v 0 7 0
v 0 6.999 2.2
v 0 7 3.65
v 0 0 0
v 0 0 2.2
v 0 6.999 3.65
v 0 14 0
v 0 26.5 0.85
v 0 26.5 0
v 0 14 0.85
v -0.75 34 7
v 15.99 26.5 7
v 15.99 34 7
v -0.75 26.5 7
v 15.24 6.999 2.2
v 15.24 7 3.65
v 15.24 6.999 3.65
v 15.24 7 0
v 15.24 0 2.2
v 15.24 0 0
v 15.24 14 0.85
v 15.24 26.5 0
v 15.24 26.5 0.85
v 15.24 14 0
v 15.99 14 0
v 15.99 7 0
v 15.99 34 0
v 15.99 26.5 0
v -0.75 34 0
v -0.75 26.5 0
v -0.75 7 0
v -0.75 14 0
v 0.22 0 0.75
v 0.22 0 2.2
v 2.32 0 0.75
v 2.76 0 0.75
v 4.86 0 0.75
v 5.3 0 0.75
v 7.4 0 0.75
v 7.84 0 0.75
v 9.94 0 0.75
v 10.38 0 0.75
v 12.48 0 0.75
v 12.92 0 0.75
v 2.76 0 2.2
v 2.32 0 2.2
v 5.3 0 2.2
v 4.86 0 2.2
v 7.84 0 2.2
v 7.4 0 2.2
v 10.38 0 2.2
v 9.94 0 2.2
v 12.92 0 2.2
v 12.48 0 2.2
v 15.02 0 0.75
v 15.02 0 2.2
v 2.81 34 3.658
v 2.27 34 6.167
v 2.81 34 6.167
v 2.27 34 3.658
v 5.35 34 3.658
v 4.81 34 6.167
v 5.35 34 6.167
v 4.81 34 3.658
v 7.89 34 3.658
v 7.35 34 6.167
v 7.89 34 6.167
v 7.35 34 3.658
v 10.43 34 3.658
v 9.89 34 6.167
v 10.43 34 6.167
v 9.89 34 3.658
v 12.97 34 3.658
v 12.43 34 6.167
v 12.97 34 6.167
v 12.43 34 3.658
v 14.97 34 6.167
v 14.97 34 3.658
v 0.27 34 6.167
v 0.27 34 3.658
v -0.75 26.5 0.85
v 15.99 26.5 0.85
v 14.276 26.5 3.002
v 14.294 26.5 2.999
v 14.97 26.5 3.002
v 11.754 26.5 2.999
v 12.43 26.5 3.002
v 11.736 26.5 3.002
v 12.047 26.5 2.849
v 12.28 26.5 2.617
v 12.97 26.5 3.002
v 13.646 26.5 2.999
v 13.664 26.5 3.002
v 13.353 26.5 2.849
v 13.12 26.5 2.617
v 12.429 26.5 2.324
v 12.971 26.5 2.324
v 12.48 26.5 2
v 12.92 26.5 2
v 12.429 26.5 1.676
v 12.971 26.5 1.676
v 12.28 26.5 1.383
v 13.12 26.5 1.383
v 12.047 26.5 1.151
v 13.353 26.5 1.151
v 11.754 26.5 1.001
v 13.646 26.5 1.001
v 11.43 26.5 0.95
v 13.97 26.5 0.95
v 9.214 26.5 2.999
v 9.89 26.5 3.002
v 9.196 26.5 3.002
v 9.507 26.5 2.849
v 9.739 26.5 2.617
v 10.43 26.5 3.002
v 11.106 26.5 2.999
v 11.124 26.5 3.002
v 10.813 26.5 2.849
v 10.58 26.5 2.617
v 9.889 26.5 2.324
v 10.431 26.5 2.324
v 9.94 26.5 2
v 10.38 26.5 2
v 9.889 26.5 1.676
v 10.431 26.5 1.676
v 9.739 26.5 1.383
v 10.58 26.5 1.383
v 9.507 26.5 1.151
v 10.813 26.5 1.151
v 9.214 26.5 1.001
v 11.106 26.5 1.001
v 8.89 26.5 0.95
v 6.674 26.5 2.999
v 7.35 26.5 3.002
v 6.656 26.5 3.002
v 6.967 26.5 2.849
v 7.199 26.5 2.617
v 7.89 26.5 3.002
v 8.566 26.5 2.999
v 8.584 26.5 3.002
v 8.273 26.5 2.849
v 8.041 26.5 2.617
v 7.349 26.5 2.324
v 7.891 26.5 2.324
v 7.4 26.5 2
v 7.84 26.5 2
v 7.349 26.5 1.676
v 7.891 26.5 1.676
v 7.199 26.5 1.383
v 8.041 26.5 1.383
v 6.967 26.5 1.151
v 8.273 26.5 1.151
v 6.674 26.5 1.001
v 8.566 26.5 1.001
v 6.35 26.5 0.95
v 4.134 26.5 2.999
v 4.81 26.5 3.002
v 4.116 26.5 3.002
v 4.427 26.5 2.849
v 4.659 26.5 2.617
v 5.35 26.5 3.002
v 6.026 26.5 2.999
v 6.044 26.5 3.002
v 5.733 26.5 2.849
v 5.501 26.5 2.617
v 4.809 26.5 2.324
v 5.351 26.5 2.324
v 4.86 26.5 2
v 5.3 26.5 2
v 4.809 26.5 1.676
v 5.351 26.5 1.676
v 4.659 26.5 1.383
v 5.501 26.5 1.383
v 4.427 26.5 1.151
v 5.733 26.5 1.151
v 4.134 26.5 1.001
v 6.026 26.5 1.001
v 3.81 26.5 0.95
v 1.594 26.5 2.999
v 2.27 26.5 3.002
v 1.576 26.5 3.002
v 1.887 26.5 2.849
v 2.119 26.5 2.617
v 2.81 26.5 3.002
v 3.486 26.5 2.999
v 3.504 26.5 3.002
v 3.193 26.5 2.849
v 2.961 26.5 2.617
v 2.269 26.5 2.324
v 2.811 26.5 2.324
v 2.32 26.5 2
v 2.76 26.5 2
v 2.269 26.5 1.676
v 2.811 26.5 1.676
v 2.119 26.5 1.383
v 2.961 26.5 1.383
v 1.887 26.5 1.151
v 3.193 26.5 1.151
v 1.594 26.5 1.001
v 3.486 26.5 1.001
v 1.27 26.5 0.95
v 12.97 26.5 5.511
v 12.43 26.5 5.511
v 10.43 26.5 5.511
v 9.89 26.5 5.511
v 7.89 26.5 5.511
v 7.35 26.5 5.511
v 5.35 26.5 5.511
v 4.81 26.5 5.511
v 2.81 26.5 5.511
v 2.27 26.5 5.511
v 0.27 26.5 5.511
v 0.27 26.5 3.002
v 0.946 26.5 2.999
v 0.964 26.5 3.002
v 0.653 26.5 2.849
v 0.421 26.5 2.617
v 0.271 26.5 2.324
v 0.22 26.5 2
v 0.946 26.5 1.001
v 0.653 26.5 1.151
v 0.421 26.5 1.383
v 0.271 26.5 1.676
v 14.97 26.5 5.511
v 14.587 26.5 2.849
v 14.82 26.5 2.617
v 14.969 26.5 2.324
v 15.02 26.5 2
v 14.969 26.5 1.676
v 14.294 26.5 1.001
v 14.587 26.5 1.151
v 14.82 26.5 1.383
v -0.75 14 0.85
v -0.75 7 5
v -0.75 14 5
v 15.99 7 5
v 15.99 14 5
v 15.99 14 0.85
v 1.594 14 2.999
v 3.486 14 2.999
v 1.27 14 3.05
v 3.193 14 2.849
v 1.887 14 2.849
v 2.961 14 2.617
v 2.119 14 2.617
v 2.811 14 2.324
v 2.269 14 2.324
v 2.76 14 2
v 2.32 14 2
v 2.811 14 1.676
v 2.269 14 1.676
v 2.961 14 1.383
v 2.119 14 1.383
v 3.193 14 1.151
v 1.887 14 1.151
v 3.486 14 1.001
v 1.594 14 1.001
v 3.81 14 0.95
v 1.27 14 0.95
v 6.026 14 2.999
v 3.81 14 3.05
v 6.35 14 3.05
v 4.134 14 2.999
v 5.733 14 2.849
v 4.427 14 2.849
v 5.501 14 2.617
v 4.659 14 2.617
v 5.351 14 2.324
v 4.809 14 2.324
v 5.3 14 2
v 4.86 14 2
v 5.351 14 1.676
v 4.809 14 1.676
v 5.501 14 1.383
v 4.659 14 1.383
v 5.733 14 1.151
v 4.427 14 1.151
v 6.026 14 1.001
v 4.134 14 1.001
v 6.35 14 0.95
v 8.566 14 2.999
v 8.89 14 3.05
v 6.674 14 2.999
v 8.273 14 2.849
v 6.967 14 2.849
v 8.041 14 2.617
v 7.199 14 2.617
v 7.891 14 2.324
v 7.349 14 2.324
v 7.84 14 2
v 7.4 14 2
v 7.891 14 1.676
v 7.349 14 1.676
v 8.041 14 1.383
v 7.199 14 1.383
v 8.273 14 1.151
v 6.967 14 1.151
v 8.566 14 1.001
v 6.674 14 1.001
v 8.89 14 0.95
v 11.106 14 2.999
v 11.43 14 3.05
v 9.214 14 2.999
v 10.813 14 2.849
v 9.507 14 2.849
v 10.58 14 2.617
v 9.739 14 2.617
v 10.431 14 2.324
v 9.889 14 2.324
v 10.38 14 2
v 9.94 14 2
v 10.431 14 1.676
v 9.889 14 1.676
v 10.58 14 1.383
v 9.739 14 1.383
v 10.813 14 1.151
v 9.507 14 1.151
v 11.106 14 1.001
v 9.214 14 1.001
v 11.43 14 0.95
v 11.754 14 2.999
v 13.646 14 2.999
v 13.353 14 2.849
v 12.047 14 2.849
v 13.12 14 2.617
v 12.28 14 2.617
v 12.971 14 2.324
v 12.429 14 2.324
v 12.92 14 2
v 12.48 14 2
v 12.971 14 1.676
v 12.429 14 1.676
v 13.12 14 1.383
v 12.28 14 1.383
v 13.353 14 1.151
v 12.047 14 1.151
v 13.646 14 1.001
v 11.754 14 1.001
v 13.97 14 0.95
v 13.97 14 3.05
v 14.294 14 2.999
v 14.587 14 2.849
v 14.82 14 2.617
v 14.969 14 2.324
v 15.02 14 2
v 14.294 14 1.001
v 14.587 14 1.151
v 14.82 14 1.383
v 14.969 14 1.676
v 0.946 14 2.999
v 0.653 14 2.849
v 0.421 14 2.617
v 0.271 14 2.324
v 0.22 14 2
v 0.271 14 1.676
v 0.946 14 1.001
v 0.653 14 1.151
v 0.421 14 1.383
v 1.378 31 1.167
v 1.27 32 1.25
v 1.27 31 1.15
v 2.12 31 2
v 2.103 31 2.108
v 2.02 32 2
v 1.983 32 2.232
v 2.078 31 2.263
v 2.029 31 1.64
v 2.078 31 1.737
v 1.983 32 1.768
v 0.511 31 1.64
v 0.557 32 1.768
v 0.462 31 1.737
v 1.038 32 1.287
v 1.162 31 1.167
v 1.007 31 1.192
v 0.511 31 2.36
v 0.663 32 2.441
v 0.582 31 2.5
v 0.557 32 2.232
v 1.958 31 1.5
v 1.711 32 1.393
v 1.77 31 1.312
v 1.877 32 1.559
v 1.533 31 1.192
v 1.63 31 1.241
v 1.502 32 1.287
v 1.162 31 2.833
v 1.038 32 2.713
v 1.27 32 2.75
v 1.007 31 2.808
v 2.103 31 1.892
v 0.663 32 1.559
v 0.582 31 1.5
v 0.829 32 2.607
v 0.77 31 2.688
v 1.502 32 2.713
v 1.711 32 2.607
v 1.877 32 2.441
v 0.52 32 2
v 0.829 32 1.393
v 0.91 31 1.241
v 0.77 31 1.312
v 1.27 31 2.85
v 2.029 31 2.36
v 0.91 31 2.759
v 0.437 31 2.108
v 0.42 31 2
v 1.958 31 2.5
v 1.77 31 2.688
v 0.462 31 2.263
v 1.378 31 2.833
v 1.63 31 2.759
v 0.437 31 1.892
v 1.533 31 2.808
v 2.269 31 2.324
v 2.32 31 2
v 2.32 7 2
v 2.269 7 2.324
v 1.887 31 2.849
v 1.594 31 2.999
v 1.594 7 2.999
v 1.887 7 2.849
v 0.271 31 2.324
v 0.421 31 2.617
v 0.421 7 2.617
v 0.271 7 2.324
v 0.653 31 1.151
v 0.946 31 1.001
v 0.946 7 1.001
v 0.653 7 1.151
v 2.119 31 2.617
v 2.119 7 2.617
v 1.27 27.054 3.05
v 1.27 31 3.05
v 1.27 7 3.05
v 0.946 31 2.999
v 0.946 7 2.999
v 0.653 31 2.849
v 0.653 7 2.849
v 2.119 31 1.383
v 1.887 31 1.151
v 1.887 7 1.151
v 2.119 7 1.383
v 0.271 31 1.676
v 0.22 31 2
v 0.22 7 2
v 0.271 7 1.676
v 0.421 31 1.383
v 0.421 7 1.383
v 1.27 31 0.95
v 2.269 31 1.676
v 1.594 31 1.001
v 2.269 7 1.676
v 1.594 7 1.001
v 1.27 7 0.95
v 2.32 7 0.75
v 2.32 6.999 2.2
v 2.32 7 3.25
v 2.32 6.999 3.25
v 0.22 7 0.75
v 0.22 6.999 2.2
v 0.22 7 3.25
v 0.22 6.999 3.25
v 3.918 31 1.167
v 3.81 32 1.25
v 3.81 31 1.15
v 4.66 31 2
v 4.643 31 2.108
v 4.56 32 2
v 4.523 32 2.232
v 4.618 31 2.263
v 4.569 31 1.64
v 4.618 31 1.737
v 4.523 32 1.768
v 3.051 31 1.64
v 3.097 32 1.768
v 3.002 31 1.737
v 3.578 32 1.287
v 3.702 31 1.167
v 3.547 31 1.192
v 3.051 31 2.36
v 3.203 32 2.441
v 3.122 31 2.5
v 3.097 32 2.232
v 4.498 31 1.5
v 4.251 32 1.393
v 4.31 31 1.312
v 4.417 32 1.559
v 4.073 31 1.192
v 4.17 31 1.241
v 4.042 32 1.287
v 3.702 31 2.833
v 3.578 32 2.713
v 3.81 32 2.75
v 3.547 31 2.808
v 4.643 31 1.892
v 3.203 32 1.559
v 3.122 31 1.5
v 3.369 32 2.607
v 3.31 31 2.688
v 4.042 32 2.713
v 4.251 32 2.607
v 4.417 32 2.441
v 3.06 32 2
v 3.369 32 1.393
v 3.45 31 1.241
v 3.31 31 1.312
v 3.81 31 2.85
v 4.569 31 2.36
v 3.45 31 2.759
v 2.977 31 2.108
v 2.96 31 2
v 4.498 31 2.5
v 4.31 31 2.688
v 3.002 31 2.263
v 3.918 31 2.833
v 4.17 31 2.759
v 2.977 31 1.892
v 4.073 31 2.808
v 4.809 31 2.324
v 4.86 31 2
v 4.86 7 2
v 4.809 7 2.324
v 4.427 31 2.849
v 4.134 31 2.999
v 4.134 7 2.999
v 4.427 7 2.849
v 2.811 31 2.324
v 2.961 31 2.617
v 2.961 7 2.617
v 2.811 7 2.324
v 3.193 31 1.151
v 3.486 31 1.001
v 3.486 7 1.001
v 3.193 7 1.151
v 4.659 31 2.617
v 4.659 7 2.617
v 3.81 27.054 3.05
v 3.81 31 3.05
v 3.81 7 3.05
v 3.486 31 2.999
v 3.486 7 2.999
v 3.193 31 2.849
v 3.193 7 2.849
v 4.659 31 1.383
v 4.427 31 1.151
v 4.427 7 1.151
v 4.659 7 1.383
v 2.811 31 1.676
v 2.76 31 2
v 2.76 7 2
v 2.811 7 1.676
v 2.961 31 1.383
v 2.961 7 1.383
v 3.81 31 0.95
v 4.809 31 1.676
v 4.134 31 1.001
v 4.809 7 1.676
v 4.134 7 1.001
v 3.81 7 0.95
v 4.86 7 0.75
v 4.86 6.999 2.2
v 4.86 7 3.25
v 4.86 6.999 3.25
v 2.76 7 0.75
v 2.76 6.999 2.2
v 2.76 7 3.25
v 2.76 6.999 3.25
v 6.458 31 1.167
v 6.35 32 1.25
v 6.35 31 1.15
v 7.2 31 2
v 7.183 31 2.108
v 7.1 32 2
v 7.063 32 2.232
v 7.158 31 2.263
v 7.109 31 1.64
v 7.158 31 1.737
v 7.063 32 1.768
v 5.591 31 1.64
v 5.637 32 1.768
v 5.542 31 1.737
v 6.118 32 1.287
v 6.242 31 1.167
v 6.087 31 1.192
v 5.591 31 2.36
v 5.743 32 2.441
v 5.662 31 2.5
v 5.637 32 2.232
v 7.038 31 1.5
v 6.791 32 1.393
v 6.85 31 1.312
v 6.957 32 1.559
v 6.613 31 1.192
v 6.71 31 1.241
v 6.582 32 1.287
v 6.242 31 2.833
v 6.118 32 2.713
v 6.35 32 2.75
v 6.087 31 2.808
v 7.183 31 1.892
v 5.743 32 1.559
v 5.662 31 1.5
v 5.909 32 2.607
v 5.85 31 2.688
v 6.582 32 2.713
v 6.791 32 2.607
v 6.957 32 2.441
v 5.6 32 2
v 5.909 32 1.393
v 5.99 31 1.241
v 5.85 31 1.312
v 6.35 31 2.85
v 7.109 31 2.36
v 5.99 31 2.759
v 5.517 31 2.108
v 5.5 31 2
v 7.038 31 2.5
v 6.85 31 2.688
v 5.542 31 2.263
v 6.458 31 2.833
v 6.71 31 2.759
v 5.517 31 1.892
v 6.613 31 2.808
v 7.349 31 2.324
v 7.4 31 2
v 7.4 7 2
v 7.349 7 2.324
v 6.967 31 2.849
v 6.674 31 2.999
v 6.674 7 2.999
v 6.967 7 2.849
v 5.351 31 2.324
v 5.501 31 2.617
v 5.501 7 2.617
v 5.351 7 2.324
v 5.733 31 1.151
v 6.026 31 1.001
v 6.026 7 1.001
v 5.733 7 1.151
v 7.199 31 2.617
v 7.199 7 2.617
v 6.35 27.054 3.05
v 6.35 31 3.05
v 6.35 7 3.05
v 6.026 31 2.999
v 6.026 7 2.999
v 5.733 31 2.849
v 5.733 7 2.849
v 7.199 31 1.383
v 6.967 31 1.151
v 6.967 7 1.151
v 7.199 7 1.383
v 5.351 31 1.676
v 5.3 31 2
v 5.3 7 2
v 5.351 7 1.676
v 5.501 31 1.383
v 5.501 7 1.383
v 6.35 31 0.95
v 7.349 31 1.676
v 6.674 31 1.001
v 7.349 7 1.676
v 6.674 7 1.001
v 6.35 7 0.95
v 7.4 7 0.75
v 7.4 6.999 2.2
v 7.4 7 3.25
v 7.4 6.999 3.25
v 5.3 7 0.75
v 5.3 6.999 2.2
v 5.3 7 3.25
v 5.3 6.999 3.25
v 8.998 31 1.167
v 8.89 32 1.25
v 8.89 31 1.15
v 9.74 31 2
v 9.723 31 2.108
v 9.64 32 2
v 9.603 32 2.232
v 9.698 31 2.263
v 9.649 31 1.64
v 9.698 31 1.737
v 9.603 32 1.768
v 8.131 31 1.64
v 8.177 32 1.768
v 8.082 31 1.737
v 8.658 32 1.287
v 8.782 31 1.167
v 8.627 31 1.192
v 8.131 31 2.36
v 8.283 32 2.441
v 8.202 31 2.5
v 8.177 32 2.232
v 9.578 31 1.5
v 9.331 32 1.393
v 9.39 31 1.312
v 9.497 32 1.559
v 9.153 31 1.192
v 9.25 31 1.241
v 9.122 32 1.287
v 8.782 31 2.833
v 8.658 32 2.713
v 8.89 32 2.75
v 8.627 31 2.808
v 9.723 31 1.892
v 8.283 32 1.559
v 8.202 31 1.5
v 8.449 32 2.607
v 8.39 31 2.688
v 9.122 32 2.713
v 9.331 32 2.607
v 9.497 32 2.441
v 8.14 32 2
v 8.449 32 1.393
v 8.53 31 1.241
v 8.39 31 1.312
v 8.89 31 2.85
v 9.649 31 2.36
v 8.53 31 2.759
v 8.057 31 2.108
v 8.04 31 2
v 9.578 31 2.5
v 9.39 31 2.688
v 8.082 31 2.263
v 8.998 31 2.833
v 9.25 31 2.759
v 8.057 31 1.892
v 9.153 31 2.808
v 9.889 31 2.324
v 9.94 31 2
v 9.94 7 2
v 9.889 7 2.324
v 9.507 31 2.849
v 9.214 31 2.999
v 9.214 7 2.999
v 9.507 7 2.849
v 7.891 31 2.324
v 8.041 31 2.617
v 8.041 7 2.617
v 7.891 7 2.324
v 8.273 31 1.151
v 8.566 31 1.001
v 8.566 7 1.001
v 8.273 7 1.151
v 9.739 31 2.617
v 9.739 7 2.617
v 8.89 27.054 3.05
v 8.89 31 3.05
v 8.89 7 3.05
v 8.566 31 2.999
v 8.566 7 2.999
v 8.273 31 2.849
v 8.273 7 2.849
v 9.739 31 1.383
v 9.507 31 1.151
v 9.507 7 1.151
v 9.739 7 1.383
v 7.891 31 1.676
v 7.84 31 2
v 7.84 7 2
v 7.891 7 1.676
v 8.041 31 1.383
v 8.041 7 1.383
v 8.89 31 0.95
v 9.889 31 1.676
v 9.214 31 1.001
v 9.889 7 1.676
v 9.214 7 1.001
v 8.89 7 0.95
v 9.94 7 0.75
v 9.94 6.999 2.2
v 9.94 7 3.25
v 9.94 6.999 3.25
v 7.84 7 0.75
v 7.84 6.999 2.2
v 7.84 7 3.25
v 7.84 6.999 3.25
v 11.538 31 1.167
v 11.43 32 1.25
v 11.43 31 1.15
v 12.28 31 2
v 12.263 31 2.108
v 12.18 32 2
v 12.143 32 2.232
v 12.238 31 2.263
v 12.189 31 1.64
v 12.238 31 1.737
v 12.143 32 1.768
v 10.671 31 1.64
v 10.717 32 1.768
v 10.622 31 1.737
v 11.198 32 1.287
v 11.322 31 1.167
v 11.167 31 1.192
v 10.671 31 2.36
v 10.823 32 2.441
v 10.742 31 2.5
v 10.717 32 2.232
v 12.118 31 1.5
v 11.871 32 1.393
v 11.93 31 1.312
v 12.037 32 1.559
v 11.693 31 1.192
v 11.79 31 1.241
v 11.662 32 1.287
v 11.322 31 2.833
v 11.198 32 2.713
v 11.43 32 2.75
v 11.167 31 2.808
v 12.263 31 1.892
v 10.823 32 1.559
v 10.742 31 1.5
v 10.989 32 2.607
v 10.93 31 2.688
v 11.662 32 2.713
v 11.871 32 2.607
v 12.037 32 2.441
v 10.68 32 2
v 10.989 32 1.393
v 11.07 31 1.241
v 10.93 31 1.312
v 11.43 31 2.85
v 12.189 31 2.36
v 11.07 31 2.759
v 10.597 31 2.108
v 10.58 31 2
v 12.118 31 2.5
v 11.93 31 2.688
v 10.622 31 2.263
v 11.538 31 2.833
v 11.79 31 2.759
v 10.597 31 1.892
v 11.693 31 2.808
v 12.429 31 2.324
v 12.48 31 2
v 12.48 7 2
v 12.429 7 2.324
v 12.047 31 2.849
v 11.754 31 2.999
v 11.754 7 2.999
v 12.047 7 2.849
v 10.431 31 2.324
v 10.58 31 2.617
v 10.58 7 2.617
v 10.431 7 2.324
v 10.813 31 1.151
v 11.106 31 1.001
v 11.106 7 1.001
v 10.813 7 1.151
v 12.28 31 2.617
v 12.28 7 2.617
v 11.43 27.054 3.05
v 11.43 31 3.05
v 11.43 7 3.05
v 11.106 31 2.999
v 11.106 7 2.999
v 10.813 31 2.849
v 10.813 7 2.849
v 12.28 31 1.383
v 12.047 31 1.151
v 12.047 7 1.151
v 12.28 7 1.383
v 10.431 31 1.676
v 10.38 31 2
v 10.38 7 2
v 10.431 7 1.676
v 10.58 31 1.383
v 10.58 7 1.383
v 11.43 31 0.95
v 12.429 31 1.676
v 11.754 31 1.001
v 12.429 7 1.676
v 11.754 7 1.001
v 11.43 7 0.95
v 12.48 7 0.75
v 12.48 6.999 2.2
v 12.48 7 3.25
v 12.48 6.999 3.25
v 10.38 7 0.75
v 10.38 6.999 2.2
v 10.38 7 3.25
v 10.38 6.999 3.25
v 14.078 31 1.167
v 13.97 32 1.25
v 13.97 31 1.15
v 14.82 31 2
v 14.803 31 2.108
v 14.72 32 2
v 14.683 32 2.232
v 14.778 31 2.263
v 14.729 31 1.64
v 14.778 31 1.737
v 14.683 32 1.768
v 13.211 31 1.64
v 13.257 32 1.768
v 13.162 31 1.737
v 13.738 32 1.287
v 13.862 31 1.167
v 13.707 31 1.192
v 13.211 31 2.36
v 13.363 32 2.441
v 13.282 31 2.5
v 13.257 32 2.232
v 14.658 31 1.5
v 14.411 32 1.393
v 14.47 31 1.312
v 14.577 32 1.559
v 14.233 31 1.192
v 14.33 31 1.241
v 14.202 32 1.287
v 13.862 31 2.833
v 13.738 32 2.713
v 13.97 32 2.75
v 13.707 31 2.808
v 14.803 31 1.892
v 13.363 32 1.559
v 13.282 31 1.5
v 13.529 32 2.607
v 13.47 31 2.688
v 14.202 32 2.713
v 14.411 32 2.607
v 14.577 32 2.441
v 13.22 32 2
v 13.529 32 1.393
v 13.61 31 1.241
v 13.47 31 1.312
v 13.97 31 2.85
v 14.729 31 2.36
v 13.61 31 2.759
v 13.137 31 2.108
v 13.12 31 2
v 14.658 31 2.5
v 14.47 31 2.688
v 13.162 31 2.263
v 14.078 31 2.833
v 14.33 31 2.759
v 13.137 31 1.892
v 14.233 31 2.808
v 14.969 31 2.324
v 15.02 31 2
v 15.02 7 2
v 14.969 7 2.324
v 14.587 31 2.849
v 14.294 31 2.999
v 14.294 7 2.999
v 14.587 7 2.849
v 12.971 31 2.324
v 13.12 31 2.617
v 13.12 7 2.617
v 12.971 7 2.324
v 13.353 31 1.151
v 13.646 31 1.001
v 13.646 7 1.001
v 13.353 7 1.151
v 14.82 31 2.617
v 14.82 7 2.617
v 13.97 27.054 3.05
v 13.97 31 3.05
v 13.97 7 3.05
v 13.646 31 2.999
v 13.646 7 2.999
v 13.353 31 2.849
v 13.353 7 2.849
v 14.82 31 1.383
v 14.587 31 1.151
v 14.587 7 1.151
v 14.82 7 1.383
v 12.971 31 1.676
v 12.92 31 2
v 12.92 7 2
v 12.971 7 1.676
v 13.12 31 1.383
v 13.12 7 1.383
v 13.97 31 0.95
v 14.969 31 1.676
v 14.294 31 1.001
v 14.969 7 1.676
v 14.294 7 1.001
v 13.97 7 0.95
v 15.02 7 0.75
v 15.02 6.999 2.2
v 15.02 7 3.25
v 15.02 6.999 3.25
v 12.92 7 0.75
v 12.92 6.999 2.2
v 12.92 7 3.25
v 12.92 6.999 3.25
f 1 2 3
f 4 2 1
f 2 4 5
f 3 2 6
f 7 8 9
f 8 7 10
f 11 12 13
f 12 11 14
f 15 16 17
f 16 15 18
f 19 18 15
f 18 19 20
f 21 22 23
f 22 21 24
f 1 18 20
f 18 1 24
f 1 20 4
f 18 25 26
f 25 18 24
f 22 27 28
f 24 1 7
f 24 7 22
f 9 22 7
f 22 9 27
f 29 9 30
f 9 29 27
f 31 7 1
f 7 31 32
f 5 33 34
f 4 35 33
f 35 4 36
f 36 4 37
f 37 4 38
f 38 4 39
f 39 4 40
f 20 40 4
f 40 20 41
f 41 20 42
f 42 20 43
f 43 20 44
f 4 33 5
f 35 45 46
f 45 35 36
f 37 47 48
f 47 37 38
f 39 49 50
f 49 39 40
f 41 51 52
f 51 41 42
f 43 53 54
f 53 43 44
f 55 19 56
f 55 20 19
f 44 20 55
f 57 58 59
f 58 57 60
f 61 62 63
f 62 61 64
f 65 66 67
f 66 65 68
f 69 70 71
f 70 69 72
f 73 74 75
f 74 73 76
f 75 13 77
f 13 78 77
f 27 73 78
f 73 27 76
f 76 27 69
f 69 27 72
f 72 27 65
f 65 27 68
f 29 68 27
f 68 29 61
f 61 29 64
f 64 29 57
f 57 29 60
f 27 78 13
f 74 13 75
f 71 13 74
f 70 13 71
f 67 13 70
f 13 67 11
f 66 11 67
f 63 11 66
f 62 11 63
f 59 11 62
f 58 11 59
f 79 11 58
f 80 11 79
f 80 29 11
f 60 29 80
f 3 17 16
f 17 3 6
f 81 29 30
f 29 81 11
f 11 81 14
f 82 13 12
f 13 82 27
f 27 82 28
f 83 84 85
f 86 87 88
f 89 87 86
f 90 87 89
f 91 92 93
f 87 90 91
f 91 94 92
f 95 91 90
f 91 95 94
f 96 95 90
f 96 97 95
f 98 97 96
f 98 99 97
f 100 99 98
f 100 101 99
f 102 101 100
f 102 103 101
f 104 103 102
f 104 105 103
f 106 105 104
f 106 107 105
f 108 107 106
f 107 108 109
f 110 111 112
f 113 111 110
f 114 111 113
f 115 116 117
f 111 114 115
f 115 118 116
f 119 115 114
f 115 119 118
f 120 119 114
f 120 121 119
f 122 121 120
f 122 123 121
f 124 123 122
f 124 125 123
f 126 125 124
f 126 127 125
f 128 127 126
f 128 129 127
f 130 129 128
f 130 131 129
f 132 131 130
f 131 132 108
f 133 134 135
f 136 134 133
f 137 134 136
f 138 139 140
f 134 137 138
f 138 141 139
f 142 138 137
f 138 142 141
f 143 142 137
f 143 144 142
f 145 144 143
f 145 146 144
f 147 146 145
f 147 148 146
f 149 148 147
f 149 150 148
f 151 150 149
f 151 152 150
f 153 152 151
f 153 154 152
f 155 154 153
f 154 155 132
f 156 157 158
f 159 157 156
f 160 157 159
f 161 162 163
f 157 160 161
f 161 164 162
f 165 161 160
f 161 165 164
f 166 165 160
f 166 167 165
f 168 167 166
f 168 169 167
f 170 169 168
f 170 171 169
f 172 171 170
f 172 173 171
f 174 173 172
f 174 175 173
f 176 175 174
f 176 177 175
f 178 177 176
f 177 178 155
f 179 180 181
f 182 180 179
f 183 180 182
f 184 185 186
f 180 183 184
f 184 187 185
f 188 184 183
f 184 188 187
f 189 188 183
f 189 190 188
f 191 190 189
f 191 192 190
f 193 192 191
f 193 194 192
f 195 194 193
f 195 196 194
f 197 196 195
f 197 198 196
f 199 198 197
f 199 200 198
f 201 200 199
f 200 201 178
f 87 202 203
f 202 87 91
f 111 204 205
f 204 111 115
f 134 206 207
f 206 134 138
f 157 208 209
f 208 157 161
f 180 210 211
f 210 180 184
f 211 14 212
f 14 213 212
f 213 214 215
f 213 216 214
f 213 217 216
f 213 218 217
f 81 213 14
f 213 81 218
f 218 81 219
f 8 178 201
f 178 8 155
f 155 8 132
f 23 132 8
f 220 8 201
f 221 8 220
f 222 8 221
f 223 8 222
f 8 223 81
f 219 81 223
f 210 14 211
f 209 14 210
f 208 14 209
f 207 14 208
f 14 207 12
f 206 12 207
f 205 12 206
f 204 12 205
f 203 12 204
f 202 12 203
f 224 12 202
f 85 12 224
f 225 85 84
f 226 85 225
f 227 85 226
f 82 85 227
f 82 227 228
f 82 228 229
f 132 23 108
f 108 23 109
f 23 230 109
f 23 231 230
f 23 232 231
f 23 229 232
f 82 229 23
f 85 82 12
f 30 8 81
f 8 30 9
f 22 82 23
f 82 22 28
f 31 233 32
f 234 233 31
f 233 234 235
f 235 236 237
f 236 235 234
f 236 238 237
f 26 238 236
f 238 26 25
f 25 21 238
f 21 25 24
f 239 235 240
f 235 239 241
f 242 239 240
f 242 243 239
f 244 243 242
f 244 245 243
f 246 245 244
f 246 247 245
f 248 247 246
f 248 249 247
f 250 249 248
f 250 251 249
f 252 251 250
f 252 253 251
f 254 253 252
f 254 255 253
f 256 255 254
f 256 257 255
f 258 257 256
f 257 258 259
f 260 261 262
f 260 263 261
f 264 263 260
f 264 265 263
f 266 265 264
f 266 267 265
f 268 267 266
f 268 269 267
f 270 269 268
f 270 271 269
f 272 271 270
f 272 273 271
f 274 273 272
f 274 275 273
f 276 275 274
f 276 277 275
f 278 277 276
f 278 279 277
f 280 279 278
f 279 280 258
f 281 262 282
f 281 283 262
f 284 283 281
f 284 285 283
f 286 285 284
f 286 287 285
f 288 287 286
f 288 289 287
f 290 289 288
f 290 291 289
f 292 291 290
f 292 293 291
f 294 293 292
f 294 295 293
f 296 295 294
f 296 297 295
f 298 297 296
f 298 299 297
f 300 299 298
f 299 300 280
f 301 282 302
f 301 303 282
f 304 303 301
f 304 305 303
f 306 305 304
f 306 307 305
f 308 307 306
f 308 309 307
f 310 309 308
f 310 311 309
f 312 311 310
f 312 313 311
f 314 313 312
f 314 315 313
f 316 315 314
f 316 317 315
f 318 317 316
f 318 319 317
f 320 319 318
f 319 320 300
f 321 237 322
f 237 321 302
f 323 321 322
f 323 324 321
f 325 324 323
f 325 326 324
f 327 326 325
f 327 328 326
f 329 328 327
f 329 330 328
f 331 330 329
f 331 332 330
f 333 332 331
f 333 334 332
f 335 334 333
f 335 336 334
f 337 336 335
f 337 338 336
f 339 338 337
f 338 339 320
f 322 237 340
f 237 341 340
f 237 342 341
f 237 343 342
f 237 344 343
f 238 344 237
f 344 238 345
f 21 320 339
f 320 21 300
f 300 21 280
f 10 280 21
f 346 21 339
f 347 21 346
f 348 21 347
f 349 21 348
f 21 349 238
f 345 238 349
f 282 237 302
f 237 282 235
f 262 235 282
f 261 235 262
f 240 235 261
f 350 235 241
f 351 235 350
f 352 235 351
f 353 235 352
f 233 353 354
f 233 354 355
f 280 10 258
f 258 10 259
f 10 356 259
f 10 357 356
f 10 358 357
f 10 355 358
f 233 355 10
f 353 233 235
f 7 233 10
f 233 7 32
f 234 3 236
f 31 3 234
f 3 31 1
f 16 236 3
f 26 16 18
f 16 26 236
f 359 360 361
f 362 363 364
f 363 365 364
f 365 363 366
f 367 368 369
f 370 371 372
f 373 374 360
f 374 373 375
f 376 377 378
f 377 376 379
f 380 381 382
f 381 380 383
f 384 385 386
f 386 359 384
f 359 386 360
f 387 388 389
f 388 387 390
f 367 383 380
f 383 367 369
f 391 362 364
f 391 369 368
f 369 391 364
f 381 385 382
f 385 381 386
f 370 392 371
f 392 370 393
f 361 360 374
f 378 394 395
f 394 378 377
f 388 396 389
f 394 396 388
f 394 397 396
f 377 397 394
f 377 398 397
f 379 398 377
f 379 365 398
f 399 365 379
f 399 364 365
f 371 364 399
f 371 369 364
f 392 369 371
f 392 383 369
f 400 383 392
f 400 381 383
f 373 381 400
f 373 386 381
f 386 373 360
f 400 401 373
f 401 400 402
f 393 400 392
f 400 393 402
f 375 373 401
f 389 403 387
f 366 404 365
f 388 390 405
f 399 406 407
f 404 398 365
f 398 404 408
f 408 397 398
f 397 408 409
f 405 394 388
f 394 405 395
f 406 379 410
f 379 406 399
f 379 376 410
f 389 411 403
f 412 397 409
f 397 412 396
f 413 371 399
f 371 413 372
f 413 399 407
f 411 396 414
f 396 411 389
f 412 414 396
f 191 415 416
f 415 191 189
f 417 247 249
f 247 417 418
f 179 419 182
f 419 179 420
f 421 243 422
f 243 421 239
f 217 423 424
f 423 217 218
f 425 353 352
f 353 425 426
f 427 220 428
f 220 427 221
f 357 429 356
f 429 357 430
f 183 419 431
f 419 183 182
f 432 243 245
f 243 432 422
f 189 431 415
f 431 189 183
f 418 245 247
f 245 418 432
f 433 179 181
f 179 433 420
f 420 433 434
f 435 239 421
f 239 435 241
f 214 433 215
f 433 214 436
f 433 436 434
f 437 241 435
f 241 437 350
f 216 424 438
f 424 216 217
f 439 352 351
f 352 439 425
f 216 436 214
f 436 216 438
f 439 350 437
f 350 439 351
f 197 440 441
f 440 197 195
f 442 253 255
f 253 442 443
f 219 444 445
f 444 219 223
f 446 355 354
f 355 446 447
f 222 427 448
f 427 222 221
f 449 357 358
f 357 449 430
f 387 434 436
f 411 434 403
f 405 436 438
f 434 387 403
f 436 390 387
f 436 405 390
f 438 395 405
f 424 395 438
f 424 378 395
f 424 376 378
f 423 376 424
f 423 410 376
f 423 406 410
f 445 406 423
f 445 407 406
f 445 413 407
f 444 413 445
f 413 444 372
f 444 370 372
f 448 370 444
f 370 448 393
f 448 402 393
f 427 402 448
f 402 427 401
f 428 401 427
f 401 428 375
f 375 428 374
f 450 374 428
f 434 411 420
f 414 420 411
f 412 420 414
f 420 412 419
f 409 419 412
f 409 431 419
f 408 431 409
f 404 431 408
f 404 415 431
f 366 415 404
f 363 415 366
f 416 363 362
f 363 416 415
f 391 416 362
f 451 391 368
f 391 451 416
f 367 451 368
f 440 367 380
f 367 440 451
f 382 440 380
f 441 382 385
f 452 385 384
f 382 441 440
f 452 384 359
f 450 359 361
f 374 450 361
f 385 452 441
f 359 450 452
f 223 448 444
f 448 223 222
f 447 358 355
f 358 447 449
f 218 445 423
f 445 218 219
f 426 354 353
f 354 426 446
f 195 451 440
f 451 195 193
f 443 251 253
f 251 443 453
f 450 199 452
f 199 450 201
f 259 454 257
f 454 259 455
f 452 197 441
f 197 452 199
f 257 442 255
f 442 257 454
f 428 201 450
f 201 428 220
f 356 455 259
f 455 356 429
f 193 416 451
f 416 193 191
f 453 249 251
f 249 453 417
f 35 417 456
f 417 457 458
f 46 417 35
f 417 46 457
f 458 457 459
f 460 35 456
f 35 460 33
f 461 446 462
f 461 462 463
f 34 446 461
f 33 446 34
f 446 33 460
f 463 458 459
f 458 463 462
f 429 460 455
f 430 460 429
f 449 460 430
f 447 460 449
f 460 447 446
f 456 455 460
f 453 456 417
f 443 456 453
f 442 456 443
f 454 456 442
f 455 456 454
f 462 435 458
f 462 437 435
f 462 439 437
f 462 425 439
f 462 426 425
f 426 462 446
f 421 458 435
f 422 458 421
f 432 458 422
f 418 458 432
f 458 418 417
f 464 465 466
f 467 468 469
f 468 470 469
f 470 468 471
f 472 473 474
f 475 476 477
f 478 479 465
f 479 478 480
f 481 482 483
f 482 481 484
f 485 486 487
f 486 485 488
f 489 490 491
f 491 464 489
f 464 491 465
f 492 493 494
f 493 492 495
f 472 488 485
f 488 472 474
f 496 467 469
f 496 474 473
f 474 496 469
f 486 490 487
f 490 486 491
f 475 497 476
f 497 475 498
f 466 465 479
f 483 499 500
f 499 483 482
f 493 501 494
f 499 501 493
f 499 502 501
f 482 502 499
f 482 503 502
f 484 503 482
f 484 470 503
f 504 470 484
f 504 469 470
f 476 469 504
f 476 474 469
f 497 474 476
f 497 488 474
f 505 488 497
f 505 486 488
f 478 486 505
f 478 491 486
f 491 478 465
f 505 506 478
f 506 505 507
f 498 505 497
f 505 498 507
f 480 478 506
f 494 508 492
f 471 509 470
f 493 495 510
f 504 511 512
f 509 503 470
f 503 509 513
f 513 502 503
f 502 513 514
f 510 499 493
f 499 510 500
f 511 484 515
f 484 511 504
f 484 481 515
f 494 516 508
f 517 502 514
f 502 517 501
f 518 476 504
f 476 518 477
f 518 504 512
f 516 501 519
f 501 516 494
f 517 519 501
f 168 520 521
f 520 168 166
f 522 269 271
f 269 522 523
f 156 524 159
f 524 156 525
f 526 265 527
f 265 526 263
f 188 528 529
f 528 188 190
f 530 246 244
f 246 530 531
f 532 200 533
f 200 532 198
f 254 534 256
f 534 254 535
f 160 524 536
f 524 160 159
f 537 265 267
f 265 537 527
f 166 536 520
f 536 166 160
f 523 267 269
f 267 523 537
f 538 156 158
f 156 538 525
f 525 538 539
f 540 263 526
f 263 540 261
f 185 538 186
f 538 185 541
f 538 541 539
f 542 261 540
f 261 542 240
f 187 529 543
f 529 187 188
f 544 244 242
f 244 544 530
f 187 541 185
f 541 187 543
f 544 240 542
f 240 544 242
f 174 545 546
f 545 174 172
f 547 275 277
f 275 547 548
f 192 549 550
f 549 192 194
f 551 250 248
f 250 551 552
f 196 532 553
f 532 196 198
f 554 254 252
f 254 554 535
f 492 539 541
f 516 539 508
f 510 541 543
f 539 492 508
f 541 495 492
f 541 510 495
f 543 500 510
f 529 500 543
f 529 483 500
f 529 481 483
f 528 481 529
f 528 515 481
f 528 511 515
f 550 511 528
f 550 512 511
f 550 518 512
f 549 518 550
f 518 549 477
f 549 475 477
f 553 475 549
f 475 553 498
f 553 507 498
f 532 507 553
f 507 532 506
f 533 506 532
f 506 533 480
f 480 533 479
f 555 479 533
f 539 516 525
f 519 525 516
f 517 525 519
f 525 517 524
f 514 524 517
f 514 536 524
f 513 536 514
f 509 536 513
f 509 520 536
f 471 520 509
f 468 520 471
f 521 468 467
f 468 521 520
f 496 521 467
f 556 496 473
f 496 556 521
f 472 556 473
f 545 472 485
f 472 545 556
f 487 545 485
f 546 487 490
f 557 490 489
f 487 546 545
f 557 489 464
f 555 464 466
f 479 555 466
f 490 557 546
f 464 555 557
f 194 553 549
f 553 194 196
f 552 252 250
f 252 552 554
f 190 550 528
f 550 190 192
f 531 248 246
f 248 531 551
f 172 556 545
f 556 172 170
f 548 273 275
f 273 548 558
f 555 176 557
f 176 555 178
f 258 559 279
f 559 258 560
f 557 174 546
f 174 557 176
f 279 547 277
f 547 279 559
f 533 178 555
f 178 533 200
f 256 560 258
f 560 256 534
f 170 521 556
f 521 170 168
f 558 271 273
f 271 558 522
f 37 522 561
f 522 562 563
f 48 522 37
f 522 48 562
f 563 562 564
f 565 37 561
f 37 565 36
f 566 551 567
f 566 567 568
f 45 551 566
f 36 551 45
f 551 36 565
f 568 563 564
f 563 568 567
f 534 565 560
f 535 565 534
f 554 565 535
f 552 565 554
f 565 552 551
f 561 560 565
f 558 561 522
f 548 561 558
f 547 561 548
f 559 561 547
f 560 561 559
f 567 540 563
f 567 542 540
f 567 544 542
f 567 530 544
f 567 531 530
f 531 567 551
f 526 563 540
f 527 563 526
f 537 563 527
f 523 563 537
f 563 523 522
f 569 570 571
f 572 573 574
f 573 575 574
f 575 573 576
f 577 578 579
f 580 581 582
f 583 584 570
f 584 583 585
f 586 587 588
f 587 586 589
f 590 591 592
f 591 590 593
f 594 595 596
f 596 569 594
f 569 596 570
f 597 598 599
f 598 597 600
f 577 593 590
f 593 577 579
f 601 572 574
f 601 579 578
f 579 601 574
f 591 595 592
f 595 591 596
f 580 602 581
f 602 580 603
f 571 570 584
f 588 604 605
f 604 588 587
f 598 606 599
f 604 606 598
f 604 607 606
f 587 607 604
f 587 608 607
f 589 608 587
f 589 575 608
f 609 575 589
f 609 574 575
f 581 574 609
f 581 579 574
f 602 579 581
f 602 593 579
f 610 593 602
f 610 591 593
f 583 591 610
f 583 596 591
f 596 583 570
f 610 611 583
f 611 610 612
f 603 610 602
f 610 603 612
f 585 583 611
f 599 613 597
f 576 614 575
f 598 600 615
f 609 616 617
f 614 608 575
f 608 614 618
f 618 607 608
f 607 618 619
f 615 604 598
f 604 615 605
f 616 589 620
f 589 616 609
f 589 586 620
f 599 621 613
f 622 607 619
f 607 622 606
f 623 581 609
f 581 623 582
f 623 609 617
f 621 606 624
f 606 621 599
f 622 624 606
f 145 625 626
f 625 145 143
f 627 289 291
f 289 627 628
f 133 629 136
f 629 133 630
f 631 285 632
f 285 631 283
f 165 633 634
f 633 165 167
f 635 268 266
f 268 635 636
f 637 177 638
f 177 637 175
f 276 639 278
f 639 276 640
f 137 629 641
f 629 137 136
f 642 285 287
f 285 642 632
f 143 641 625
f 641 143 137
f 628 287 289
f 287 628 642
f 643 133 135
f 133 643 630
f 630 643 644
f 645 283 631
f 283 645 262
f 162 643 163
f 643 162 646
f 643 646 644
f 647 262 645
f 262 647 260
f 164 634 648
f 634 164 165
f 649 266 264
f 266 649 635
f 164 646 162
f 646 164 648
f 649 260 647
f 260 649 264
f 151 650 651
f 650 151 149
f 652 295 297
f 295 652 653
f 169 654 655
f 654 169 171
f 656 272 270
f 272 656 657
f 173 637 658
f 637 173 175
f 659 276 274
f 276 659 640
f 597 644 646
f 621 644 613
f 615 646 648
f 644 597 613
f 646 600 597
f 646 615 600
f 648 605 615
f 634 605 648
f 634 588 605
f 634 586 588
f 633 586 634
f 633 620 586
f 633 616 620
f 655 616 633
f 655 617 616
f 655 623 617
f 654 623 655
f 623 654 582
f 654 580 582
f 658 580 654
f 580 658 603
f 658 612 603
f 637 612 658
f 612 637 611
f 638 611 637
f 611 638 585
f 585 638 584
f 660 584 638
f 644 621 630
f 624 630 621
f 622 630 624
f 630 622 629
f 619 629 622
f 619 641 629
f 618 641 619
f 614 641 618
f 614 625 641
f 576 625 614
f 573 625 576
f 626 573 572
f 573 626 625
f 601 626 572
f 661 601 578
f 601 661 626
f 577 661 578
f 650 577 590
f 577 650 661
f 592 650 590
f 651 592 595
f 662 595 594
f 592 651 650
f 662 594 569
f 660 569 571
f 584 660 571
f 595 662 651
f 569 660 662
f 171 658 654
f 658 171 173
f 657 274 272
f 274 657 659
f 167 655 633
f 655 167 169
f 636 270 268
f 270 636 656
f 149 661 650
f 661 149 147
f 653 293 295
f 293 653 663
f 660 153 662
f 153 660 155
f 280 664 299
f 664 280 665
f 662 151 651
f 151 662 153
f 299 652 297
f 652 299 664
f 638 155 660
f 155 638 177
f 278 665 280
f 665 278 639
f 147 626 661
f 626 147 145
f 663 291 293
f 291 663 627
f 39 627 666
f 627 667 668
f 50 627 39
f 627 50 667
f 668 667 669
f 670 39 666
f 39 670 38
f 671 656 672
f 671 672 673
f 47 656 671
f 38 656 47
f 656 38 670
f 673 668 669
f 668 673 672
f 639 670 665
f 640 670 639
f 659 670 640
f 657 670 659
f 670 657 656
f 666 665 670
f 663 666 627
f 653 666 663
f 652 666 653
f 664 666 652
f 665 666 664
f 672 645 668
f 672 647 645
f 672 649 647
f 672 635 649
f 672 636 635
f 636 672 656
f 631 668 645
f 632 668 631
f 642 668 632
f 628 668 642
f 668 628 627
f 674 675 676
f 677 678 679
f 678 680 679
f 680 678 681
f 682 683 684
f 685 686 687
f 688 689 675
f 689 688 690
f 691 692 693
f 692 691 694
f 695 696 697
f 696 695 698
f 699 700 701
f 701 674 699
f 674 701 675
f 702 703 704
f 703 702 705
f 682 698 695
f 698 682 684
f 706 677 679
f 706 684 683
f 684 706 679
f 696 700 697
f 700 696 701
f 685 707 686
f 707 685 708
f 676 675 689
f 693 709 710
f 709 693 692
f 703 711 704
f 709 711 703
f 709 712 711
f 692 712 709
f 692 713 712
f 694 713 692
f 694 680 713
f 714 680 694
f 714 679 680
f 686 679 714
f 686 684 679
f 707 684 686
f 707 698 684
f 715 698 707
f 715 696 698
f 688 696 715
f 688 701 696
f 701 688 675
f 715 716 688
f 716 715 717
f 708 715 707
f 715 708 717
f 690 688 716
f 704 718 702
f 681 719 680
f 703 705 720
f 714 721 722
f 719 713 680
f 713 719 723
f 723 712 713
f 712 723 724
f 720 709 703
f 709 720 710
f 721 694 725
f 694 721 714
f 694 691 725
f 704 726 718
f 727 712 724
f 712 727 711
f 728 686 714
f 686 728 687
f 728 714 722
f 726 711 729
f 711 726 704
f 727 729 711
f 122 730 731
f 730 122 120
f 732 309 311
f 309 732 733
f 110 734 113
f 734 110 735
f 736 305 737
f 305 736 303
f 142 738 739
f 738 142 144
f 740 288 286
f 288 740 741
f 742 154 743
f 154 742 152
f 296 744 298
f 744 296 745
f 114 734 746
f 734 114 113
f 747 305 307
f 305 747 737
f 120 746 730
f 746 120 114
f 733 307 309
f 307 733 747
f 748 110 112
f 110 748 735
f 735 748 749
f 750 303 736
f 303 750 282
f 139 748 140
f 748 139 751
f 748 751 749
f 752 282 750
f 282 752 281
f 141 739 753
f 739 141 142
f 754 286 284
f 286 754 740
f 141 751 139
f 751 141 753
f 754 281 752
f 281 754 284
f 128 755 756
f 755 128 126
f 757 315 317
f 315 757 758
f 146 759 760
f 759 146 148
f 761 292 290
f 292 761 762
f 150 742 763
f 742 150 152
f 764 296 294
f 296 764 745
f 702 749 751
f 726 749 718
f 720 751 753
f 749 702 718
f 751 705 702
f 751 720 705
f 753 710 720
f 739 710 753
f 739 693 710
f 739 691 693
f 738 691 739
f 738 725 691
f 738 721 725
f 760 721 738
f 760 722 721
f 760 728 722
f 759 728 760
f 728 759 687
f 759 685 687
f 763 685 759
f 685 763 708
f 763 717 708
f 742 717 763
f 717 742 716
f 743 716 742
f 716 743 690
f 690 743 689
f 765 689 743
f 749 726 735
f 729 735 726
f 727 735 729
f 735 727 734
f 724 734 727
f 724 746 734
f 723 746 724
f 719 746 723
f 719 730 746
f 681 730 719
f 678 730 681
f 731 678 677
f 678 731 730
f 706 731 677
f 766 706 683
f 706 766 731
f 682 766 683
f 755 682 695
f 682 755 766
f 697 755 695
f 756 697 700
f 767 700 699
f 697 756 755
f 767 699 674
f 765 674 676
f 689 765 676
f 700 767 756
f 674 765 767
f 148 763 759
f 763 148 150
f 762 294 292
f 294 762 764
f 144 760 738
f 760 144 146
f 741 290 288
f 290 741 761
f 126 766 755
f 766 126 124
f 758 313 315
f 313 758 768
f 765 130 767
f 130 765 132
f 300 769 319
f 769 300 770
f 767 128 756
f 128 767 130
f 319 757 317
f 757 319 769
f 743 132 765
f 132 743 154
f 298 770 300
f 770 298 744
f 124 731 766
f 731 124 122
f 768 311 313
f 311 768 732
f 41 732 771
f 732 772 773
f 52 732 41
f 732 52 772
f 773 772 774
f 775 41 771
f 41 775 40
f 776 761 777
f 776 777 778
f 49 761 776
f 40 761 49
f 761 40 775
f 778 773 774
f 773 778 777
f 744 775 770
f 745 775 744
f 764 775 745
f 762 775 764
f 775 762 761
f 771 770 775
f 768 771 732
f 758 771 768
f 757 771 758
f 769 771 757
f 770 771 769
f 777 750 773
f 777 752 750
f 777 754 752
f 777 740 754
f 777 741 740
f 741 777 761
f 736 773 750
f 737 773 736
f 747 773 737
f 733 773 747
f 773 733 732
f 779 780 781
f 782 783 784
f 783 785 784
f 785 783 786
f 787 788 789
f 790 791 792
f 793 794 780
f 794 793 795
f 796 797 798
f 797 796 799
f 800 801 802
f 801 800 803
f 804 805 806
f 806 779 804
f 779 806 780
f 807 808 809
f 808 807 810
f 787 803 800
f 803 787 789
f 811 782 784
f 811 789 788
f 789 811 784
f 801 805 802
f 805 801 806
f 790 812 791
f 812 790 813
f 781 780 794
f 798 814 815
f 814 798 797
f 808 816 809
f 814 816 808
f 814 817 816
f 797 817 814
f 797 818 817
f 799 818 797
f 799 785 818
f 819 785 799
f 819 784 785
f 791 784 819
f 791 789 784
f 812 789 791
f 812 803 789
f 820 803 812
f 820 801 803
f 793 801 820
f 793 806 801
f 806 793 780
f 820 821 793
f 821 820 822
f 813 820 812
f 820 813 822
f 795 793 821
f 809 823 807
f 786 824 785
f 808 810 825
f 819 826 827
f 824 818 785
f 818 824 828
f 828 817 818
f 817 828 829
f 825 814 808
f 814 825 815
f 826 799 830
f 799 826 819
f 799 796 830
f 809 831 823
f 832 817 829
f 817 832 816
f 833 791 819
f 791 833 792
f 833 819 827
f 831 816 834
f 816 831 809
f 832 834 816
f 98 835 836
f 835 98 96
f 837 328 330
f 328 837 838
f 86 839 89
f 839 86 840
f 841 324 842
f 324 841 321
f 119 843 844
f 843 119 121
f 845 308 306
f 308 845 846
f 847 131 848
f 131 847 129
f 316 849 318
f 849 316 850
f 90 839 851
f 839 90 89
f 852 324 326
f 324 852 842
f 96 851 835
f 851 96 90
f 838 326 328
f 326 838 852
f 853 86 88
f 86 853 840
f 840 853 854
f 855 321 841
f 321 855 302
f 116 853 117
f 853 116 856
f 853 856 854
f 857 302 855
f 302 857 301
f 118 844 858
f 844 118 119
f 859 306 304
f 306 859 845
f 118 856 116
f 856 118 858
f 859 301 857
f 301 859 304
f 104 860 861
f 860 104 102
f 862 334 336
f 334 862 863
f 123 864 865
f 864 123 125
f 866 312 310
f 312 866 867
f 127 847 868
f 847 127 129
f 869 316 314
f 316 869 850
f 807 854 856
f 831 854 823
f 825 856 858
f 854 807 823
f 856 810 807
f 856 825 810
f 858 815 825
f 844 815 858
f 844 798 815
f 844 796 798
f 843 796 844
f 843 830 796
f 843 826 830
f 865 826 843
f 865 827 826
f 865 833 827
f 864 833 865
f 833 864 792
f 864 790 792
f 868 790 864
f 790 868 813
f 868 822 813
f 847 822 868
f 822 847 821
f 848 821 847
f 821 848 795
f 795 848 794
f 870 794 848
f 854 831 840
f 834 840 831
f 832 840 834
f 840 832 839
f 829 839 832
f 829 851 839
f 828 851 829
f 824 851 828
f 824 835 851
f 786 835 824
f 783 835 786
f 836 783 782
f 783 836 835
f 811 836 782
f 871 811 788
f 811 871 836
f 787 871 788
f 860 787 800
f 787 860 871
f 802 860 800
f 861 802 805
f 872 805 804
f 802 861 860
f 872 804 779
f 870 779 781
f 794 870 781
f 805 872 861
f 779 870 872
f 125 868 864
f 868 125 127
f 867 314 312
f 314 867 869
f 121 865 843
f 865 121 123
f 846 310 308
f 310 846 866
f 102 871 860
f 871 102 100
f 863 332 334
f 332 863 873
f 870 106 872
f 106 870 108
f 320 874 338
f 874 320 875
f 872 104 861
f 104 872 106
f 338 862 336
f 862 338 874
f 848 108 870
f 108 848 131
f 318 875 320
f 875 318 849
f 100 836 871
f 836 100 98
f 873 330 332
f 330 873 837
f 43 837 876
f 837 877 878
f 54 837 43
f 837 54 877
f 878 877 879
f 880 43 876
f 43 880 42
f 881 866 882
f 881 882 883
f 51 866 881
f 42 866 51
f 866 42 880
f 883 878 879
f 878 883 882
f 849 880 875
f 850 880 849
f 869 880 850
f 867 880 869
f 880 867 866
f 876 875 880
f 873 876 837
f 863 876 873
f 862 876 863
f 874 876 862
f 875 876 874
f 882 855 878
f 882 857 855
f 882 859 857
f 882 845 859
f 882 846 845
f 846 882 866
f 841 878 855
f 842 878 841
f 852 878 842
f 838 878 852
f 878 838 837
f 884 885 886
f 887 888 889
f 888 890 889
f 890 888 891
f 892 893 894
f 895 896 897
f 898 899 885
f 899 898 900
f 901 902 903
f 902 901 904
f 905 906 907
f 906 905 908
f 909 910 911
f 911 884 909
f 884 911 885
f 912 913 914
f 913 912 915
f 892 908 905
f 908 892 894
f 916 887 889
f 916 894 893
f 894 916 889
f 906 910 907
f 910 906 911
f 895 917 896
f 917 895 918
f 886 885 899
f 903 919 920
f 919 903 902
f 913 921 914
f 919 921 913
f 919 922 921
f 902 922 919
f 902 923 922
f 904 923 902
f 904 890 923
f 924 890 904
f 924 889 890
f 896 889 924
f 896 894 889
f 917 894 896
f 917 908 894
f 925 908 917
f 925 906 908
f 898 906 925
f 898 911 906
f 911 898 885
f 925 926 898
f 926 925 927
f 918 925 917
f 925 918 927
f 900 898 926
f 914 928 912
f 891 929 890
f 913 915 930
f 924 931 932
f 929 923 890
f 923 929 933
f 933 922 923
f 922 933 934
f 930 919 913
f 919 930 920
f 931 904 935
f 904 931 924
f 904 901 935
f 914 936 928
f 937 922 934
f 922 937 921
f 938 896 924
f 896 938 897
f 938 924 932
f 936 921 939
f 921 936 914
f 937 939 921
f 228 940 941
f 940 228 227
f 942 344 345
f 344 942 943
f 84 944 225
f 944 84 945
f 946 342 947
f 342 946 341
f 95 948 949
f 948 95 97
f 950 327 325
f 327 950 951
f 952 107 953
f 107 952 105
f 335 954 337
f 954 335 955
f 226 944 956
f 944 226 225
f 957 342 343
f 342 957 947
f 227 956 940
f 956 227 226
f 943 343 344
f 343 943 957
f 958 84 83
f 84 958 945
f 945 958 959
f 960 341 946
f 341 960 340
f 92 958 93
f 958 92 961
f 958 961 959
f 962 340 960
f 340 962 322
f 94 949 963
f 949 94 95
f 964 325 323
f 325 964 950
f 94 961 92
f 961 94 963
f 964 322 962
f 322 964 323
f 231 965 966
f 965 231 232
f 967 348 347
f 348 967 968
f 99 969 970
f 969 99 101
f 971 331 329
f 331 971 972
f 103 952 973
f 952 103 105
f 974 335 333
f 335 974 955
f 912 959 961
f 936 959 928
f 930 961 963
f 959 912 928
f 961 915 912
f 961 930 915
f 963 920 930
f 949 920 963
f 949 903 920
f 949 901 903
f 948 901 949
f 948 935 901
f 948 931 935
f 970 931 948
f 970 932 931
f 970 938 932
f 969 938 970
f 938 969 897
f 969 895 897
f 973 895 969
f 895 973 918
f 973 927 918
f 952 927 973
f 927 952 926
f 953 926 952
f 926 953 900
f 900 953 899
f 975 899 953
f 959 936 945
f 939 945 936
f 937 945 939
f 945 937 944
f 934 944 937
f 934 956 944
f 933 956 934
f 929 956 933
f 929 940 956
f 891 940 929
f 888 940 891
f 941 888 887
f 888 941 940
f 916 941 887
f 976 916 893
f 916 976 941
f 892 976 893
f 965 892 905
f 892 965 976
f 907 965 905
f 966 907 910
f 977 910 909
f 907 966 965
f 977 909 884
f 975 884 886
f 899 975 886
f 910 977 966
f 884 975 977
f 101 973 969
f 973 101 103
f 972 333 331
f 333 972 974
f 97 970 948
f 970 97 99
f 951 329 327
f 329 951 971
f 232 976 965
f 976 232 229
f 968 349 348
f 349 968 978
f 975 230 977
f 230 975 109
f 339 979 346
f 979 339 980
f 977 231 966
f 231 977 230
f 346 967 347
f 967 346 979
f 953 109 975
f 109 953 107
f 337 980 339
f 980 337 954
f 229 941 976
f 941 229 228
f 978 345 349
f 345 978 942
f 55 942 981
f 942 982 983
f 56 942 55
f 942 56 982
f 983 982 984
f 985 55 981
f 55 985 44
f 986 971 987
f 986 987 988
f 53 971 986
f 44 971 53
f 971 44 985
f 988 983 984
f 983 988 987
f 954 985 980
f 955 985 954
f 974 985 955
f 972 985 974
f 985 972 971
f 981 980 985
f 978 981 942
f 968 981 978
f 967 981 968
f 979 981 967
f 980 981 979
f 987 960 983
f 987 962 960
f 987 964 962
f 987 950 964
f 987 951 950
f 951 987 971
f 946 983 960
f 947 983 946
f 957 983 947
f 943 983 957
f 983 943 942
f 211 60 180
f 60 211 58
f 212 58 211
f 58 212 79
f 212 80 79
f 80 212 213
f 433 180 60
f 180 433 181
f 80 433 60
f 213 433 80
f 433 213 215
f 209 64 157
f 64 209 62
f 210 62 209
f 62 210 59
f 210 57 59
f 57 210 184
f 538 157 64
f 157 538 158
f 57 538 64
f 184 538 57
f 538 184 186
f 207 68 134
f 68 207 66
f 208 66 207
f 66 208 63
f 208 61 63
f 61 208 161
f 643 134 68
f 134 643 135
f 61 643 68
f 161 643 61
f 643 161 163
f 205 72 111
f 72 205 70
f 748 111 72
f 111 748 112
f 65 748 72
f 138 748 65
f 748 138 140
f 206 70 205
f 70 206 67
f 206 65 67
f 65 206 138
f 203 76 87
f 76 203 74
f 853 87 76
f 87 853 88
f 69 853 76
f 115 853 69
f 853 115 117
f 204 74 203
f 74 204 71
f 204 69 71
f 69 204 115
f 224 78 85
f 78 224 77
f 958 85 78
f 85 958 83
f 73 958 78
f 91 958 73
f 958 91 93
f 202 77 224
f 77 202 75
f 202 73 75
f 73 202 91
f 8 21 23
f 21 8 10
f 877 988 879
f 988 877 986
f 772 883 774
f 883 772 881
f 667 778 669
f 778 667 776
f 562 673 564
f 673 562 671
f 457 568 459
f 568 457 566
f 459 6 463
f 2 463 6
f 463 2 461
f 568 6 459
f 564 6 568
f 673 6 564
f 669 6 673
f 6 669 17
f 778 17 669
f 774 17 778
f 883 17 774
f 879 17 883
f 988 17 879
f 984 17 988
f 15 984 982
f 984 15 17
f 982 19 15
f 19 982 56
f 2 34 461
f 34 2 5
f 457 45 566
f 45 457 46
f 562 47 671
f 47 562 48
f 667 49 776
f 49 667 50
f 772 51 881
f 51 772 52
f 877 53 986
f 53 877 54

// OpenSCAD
$fn=20;
/*
  Pogo Pin Serial Adaptor
  Author: Brian Khuu 2019
  
  This is similar to https://hackaday.com/2017/08/04/pogo-pin-serial-adapter-thing/
  But is fully 3D printed without need for PCB. This may be useful for Arduino serial adaptors.
  
  I used P100-E2 probes for this
*/

// Designed For Printer Nozzle
printer_nozzle=0.4;

// Base Thickness
base_thickness = 0.1;

/* probe pin spec */
ppext = 8; // Probe extention length
ppbody = 25; // Body of the probe
ppdia = 1.5; // probe pin diameter

ppdiatol = 0.6; // tolerance for fitting
ppinset = 1;

ppdiaoutset = ppext-ppinset; // How far to space out to allow for side fits
echo(ppdiaoutset);

/* Castellated Module Pin Spacing and count */

// Pin Count
ppc = 6;

// Pin Spacing
pps = 2.54;

// PCB Thickness
pcb_thickness = 1.1; // 1mm Open Log Clone

// PCB Probe Offset
pcb_probe_offset = 1.3;

/* Clip */
clip_tab = 5; // Clip tab to more easily open the clip

/* pcb */
pcb_h = 2; // pcb thickness

/* calc */
boxx = ppc * pps;
boxy = 2 + ppbody + ppdiaoutset;
boxh = base_thickness+pcb_probe_offset+ppdiatol+5;

module probe_pin_req()
{
  inset=0;
  translate([0,0,-ppbody])
  union()
  {
    translate([0,0,0])
      cylinder(r1=(ppdia)/2,r2=(ppdia+ppdiatol)/2, h=3);
    translate([0,0,1])
      cylinder(r=(ppdia+ppdiatol)/2, h=ppbody+ppext+1);
    %color("gold") cylinder(r=ppdia/2, h=ppbody);
    %color("silver") translate([0,0,ppbody])
      cylinder(r=ppdia/2, r2=0, h=ppext);
  }
}

module openlog_clone_programmer_jig()
{
  difference()
  {  
    /* Bulk */
    union()
    {
      difference()
      {
        cube([boxx,boxy,boxh]);
        translate([-5, 0, base_thickness+pcb_probe_offset+ppdia*1.5]) 
          cube([ppc * pps+10,ppbody, 5]);
      }
      translate([-(ppdia)/2, ppdiaoutset+7+ppbody/2, 0]) 
        cube([boxx+(ppdia),boxy-(ppdiaoutset+7+ppbody/2), boxh]);
      translate([-(ppdia)/2, ppdiaoutset, 0]) 
        cube([boxx+(ppdia),7, 5]);
    }

    /* Probe Access Cutout */
    translate([-5, ppdiaoutset+7, base_thickness+ppdia/2]) 
      cube([ppc * pps+10,ppbody/2, 10]);
      
    /* Module Cutout */
    translate([0, -0.001, base_thickness+ppdia+ppdiatol]) 
      cube([boxx,ppdiaoutset, boxh]);
      
    /* Probe */
    for ( xi = [0 : 1 : ppc-1] )
    {
      translate([pps/2+pps*xi, 0, base_thickness])
      union()
      {
        translate([0, ppdiaoutset, pcb_probe_offset+ppdiatol])
          rotate([90,0,0])
          probe_pin_req();
        
        translate([0, ppdiaoutset, pcb_probe_offset+ppdiatol])
          rotate([180,0,0])
            translate([0, (ppdiaoutset)/2, 0])
              cube([ppdia+ppdiatol,(ppdiaoutset),ppdia+1], center=true);
      }
    }
    
    /* Wire Guide (To solder onto the probe) */
    for ( xii = [0 : 1 : ppc-1] )
    {
      translate([pps/2+pps*xii, boxy+1, base_thickness+ppdia+1.5+pcb_probe_offset+ppdiatol])
        rotate([95,0,0])
          cube([2,2.5,20],center=true);
    }
  }
}

openlog_clone_programmer_jig();
